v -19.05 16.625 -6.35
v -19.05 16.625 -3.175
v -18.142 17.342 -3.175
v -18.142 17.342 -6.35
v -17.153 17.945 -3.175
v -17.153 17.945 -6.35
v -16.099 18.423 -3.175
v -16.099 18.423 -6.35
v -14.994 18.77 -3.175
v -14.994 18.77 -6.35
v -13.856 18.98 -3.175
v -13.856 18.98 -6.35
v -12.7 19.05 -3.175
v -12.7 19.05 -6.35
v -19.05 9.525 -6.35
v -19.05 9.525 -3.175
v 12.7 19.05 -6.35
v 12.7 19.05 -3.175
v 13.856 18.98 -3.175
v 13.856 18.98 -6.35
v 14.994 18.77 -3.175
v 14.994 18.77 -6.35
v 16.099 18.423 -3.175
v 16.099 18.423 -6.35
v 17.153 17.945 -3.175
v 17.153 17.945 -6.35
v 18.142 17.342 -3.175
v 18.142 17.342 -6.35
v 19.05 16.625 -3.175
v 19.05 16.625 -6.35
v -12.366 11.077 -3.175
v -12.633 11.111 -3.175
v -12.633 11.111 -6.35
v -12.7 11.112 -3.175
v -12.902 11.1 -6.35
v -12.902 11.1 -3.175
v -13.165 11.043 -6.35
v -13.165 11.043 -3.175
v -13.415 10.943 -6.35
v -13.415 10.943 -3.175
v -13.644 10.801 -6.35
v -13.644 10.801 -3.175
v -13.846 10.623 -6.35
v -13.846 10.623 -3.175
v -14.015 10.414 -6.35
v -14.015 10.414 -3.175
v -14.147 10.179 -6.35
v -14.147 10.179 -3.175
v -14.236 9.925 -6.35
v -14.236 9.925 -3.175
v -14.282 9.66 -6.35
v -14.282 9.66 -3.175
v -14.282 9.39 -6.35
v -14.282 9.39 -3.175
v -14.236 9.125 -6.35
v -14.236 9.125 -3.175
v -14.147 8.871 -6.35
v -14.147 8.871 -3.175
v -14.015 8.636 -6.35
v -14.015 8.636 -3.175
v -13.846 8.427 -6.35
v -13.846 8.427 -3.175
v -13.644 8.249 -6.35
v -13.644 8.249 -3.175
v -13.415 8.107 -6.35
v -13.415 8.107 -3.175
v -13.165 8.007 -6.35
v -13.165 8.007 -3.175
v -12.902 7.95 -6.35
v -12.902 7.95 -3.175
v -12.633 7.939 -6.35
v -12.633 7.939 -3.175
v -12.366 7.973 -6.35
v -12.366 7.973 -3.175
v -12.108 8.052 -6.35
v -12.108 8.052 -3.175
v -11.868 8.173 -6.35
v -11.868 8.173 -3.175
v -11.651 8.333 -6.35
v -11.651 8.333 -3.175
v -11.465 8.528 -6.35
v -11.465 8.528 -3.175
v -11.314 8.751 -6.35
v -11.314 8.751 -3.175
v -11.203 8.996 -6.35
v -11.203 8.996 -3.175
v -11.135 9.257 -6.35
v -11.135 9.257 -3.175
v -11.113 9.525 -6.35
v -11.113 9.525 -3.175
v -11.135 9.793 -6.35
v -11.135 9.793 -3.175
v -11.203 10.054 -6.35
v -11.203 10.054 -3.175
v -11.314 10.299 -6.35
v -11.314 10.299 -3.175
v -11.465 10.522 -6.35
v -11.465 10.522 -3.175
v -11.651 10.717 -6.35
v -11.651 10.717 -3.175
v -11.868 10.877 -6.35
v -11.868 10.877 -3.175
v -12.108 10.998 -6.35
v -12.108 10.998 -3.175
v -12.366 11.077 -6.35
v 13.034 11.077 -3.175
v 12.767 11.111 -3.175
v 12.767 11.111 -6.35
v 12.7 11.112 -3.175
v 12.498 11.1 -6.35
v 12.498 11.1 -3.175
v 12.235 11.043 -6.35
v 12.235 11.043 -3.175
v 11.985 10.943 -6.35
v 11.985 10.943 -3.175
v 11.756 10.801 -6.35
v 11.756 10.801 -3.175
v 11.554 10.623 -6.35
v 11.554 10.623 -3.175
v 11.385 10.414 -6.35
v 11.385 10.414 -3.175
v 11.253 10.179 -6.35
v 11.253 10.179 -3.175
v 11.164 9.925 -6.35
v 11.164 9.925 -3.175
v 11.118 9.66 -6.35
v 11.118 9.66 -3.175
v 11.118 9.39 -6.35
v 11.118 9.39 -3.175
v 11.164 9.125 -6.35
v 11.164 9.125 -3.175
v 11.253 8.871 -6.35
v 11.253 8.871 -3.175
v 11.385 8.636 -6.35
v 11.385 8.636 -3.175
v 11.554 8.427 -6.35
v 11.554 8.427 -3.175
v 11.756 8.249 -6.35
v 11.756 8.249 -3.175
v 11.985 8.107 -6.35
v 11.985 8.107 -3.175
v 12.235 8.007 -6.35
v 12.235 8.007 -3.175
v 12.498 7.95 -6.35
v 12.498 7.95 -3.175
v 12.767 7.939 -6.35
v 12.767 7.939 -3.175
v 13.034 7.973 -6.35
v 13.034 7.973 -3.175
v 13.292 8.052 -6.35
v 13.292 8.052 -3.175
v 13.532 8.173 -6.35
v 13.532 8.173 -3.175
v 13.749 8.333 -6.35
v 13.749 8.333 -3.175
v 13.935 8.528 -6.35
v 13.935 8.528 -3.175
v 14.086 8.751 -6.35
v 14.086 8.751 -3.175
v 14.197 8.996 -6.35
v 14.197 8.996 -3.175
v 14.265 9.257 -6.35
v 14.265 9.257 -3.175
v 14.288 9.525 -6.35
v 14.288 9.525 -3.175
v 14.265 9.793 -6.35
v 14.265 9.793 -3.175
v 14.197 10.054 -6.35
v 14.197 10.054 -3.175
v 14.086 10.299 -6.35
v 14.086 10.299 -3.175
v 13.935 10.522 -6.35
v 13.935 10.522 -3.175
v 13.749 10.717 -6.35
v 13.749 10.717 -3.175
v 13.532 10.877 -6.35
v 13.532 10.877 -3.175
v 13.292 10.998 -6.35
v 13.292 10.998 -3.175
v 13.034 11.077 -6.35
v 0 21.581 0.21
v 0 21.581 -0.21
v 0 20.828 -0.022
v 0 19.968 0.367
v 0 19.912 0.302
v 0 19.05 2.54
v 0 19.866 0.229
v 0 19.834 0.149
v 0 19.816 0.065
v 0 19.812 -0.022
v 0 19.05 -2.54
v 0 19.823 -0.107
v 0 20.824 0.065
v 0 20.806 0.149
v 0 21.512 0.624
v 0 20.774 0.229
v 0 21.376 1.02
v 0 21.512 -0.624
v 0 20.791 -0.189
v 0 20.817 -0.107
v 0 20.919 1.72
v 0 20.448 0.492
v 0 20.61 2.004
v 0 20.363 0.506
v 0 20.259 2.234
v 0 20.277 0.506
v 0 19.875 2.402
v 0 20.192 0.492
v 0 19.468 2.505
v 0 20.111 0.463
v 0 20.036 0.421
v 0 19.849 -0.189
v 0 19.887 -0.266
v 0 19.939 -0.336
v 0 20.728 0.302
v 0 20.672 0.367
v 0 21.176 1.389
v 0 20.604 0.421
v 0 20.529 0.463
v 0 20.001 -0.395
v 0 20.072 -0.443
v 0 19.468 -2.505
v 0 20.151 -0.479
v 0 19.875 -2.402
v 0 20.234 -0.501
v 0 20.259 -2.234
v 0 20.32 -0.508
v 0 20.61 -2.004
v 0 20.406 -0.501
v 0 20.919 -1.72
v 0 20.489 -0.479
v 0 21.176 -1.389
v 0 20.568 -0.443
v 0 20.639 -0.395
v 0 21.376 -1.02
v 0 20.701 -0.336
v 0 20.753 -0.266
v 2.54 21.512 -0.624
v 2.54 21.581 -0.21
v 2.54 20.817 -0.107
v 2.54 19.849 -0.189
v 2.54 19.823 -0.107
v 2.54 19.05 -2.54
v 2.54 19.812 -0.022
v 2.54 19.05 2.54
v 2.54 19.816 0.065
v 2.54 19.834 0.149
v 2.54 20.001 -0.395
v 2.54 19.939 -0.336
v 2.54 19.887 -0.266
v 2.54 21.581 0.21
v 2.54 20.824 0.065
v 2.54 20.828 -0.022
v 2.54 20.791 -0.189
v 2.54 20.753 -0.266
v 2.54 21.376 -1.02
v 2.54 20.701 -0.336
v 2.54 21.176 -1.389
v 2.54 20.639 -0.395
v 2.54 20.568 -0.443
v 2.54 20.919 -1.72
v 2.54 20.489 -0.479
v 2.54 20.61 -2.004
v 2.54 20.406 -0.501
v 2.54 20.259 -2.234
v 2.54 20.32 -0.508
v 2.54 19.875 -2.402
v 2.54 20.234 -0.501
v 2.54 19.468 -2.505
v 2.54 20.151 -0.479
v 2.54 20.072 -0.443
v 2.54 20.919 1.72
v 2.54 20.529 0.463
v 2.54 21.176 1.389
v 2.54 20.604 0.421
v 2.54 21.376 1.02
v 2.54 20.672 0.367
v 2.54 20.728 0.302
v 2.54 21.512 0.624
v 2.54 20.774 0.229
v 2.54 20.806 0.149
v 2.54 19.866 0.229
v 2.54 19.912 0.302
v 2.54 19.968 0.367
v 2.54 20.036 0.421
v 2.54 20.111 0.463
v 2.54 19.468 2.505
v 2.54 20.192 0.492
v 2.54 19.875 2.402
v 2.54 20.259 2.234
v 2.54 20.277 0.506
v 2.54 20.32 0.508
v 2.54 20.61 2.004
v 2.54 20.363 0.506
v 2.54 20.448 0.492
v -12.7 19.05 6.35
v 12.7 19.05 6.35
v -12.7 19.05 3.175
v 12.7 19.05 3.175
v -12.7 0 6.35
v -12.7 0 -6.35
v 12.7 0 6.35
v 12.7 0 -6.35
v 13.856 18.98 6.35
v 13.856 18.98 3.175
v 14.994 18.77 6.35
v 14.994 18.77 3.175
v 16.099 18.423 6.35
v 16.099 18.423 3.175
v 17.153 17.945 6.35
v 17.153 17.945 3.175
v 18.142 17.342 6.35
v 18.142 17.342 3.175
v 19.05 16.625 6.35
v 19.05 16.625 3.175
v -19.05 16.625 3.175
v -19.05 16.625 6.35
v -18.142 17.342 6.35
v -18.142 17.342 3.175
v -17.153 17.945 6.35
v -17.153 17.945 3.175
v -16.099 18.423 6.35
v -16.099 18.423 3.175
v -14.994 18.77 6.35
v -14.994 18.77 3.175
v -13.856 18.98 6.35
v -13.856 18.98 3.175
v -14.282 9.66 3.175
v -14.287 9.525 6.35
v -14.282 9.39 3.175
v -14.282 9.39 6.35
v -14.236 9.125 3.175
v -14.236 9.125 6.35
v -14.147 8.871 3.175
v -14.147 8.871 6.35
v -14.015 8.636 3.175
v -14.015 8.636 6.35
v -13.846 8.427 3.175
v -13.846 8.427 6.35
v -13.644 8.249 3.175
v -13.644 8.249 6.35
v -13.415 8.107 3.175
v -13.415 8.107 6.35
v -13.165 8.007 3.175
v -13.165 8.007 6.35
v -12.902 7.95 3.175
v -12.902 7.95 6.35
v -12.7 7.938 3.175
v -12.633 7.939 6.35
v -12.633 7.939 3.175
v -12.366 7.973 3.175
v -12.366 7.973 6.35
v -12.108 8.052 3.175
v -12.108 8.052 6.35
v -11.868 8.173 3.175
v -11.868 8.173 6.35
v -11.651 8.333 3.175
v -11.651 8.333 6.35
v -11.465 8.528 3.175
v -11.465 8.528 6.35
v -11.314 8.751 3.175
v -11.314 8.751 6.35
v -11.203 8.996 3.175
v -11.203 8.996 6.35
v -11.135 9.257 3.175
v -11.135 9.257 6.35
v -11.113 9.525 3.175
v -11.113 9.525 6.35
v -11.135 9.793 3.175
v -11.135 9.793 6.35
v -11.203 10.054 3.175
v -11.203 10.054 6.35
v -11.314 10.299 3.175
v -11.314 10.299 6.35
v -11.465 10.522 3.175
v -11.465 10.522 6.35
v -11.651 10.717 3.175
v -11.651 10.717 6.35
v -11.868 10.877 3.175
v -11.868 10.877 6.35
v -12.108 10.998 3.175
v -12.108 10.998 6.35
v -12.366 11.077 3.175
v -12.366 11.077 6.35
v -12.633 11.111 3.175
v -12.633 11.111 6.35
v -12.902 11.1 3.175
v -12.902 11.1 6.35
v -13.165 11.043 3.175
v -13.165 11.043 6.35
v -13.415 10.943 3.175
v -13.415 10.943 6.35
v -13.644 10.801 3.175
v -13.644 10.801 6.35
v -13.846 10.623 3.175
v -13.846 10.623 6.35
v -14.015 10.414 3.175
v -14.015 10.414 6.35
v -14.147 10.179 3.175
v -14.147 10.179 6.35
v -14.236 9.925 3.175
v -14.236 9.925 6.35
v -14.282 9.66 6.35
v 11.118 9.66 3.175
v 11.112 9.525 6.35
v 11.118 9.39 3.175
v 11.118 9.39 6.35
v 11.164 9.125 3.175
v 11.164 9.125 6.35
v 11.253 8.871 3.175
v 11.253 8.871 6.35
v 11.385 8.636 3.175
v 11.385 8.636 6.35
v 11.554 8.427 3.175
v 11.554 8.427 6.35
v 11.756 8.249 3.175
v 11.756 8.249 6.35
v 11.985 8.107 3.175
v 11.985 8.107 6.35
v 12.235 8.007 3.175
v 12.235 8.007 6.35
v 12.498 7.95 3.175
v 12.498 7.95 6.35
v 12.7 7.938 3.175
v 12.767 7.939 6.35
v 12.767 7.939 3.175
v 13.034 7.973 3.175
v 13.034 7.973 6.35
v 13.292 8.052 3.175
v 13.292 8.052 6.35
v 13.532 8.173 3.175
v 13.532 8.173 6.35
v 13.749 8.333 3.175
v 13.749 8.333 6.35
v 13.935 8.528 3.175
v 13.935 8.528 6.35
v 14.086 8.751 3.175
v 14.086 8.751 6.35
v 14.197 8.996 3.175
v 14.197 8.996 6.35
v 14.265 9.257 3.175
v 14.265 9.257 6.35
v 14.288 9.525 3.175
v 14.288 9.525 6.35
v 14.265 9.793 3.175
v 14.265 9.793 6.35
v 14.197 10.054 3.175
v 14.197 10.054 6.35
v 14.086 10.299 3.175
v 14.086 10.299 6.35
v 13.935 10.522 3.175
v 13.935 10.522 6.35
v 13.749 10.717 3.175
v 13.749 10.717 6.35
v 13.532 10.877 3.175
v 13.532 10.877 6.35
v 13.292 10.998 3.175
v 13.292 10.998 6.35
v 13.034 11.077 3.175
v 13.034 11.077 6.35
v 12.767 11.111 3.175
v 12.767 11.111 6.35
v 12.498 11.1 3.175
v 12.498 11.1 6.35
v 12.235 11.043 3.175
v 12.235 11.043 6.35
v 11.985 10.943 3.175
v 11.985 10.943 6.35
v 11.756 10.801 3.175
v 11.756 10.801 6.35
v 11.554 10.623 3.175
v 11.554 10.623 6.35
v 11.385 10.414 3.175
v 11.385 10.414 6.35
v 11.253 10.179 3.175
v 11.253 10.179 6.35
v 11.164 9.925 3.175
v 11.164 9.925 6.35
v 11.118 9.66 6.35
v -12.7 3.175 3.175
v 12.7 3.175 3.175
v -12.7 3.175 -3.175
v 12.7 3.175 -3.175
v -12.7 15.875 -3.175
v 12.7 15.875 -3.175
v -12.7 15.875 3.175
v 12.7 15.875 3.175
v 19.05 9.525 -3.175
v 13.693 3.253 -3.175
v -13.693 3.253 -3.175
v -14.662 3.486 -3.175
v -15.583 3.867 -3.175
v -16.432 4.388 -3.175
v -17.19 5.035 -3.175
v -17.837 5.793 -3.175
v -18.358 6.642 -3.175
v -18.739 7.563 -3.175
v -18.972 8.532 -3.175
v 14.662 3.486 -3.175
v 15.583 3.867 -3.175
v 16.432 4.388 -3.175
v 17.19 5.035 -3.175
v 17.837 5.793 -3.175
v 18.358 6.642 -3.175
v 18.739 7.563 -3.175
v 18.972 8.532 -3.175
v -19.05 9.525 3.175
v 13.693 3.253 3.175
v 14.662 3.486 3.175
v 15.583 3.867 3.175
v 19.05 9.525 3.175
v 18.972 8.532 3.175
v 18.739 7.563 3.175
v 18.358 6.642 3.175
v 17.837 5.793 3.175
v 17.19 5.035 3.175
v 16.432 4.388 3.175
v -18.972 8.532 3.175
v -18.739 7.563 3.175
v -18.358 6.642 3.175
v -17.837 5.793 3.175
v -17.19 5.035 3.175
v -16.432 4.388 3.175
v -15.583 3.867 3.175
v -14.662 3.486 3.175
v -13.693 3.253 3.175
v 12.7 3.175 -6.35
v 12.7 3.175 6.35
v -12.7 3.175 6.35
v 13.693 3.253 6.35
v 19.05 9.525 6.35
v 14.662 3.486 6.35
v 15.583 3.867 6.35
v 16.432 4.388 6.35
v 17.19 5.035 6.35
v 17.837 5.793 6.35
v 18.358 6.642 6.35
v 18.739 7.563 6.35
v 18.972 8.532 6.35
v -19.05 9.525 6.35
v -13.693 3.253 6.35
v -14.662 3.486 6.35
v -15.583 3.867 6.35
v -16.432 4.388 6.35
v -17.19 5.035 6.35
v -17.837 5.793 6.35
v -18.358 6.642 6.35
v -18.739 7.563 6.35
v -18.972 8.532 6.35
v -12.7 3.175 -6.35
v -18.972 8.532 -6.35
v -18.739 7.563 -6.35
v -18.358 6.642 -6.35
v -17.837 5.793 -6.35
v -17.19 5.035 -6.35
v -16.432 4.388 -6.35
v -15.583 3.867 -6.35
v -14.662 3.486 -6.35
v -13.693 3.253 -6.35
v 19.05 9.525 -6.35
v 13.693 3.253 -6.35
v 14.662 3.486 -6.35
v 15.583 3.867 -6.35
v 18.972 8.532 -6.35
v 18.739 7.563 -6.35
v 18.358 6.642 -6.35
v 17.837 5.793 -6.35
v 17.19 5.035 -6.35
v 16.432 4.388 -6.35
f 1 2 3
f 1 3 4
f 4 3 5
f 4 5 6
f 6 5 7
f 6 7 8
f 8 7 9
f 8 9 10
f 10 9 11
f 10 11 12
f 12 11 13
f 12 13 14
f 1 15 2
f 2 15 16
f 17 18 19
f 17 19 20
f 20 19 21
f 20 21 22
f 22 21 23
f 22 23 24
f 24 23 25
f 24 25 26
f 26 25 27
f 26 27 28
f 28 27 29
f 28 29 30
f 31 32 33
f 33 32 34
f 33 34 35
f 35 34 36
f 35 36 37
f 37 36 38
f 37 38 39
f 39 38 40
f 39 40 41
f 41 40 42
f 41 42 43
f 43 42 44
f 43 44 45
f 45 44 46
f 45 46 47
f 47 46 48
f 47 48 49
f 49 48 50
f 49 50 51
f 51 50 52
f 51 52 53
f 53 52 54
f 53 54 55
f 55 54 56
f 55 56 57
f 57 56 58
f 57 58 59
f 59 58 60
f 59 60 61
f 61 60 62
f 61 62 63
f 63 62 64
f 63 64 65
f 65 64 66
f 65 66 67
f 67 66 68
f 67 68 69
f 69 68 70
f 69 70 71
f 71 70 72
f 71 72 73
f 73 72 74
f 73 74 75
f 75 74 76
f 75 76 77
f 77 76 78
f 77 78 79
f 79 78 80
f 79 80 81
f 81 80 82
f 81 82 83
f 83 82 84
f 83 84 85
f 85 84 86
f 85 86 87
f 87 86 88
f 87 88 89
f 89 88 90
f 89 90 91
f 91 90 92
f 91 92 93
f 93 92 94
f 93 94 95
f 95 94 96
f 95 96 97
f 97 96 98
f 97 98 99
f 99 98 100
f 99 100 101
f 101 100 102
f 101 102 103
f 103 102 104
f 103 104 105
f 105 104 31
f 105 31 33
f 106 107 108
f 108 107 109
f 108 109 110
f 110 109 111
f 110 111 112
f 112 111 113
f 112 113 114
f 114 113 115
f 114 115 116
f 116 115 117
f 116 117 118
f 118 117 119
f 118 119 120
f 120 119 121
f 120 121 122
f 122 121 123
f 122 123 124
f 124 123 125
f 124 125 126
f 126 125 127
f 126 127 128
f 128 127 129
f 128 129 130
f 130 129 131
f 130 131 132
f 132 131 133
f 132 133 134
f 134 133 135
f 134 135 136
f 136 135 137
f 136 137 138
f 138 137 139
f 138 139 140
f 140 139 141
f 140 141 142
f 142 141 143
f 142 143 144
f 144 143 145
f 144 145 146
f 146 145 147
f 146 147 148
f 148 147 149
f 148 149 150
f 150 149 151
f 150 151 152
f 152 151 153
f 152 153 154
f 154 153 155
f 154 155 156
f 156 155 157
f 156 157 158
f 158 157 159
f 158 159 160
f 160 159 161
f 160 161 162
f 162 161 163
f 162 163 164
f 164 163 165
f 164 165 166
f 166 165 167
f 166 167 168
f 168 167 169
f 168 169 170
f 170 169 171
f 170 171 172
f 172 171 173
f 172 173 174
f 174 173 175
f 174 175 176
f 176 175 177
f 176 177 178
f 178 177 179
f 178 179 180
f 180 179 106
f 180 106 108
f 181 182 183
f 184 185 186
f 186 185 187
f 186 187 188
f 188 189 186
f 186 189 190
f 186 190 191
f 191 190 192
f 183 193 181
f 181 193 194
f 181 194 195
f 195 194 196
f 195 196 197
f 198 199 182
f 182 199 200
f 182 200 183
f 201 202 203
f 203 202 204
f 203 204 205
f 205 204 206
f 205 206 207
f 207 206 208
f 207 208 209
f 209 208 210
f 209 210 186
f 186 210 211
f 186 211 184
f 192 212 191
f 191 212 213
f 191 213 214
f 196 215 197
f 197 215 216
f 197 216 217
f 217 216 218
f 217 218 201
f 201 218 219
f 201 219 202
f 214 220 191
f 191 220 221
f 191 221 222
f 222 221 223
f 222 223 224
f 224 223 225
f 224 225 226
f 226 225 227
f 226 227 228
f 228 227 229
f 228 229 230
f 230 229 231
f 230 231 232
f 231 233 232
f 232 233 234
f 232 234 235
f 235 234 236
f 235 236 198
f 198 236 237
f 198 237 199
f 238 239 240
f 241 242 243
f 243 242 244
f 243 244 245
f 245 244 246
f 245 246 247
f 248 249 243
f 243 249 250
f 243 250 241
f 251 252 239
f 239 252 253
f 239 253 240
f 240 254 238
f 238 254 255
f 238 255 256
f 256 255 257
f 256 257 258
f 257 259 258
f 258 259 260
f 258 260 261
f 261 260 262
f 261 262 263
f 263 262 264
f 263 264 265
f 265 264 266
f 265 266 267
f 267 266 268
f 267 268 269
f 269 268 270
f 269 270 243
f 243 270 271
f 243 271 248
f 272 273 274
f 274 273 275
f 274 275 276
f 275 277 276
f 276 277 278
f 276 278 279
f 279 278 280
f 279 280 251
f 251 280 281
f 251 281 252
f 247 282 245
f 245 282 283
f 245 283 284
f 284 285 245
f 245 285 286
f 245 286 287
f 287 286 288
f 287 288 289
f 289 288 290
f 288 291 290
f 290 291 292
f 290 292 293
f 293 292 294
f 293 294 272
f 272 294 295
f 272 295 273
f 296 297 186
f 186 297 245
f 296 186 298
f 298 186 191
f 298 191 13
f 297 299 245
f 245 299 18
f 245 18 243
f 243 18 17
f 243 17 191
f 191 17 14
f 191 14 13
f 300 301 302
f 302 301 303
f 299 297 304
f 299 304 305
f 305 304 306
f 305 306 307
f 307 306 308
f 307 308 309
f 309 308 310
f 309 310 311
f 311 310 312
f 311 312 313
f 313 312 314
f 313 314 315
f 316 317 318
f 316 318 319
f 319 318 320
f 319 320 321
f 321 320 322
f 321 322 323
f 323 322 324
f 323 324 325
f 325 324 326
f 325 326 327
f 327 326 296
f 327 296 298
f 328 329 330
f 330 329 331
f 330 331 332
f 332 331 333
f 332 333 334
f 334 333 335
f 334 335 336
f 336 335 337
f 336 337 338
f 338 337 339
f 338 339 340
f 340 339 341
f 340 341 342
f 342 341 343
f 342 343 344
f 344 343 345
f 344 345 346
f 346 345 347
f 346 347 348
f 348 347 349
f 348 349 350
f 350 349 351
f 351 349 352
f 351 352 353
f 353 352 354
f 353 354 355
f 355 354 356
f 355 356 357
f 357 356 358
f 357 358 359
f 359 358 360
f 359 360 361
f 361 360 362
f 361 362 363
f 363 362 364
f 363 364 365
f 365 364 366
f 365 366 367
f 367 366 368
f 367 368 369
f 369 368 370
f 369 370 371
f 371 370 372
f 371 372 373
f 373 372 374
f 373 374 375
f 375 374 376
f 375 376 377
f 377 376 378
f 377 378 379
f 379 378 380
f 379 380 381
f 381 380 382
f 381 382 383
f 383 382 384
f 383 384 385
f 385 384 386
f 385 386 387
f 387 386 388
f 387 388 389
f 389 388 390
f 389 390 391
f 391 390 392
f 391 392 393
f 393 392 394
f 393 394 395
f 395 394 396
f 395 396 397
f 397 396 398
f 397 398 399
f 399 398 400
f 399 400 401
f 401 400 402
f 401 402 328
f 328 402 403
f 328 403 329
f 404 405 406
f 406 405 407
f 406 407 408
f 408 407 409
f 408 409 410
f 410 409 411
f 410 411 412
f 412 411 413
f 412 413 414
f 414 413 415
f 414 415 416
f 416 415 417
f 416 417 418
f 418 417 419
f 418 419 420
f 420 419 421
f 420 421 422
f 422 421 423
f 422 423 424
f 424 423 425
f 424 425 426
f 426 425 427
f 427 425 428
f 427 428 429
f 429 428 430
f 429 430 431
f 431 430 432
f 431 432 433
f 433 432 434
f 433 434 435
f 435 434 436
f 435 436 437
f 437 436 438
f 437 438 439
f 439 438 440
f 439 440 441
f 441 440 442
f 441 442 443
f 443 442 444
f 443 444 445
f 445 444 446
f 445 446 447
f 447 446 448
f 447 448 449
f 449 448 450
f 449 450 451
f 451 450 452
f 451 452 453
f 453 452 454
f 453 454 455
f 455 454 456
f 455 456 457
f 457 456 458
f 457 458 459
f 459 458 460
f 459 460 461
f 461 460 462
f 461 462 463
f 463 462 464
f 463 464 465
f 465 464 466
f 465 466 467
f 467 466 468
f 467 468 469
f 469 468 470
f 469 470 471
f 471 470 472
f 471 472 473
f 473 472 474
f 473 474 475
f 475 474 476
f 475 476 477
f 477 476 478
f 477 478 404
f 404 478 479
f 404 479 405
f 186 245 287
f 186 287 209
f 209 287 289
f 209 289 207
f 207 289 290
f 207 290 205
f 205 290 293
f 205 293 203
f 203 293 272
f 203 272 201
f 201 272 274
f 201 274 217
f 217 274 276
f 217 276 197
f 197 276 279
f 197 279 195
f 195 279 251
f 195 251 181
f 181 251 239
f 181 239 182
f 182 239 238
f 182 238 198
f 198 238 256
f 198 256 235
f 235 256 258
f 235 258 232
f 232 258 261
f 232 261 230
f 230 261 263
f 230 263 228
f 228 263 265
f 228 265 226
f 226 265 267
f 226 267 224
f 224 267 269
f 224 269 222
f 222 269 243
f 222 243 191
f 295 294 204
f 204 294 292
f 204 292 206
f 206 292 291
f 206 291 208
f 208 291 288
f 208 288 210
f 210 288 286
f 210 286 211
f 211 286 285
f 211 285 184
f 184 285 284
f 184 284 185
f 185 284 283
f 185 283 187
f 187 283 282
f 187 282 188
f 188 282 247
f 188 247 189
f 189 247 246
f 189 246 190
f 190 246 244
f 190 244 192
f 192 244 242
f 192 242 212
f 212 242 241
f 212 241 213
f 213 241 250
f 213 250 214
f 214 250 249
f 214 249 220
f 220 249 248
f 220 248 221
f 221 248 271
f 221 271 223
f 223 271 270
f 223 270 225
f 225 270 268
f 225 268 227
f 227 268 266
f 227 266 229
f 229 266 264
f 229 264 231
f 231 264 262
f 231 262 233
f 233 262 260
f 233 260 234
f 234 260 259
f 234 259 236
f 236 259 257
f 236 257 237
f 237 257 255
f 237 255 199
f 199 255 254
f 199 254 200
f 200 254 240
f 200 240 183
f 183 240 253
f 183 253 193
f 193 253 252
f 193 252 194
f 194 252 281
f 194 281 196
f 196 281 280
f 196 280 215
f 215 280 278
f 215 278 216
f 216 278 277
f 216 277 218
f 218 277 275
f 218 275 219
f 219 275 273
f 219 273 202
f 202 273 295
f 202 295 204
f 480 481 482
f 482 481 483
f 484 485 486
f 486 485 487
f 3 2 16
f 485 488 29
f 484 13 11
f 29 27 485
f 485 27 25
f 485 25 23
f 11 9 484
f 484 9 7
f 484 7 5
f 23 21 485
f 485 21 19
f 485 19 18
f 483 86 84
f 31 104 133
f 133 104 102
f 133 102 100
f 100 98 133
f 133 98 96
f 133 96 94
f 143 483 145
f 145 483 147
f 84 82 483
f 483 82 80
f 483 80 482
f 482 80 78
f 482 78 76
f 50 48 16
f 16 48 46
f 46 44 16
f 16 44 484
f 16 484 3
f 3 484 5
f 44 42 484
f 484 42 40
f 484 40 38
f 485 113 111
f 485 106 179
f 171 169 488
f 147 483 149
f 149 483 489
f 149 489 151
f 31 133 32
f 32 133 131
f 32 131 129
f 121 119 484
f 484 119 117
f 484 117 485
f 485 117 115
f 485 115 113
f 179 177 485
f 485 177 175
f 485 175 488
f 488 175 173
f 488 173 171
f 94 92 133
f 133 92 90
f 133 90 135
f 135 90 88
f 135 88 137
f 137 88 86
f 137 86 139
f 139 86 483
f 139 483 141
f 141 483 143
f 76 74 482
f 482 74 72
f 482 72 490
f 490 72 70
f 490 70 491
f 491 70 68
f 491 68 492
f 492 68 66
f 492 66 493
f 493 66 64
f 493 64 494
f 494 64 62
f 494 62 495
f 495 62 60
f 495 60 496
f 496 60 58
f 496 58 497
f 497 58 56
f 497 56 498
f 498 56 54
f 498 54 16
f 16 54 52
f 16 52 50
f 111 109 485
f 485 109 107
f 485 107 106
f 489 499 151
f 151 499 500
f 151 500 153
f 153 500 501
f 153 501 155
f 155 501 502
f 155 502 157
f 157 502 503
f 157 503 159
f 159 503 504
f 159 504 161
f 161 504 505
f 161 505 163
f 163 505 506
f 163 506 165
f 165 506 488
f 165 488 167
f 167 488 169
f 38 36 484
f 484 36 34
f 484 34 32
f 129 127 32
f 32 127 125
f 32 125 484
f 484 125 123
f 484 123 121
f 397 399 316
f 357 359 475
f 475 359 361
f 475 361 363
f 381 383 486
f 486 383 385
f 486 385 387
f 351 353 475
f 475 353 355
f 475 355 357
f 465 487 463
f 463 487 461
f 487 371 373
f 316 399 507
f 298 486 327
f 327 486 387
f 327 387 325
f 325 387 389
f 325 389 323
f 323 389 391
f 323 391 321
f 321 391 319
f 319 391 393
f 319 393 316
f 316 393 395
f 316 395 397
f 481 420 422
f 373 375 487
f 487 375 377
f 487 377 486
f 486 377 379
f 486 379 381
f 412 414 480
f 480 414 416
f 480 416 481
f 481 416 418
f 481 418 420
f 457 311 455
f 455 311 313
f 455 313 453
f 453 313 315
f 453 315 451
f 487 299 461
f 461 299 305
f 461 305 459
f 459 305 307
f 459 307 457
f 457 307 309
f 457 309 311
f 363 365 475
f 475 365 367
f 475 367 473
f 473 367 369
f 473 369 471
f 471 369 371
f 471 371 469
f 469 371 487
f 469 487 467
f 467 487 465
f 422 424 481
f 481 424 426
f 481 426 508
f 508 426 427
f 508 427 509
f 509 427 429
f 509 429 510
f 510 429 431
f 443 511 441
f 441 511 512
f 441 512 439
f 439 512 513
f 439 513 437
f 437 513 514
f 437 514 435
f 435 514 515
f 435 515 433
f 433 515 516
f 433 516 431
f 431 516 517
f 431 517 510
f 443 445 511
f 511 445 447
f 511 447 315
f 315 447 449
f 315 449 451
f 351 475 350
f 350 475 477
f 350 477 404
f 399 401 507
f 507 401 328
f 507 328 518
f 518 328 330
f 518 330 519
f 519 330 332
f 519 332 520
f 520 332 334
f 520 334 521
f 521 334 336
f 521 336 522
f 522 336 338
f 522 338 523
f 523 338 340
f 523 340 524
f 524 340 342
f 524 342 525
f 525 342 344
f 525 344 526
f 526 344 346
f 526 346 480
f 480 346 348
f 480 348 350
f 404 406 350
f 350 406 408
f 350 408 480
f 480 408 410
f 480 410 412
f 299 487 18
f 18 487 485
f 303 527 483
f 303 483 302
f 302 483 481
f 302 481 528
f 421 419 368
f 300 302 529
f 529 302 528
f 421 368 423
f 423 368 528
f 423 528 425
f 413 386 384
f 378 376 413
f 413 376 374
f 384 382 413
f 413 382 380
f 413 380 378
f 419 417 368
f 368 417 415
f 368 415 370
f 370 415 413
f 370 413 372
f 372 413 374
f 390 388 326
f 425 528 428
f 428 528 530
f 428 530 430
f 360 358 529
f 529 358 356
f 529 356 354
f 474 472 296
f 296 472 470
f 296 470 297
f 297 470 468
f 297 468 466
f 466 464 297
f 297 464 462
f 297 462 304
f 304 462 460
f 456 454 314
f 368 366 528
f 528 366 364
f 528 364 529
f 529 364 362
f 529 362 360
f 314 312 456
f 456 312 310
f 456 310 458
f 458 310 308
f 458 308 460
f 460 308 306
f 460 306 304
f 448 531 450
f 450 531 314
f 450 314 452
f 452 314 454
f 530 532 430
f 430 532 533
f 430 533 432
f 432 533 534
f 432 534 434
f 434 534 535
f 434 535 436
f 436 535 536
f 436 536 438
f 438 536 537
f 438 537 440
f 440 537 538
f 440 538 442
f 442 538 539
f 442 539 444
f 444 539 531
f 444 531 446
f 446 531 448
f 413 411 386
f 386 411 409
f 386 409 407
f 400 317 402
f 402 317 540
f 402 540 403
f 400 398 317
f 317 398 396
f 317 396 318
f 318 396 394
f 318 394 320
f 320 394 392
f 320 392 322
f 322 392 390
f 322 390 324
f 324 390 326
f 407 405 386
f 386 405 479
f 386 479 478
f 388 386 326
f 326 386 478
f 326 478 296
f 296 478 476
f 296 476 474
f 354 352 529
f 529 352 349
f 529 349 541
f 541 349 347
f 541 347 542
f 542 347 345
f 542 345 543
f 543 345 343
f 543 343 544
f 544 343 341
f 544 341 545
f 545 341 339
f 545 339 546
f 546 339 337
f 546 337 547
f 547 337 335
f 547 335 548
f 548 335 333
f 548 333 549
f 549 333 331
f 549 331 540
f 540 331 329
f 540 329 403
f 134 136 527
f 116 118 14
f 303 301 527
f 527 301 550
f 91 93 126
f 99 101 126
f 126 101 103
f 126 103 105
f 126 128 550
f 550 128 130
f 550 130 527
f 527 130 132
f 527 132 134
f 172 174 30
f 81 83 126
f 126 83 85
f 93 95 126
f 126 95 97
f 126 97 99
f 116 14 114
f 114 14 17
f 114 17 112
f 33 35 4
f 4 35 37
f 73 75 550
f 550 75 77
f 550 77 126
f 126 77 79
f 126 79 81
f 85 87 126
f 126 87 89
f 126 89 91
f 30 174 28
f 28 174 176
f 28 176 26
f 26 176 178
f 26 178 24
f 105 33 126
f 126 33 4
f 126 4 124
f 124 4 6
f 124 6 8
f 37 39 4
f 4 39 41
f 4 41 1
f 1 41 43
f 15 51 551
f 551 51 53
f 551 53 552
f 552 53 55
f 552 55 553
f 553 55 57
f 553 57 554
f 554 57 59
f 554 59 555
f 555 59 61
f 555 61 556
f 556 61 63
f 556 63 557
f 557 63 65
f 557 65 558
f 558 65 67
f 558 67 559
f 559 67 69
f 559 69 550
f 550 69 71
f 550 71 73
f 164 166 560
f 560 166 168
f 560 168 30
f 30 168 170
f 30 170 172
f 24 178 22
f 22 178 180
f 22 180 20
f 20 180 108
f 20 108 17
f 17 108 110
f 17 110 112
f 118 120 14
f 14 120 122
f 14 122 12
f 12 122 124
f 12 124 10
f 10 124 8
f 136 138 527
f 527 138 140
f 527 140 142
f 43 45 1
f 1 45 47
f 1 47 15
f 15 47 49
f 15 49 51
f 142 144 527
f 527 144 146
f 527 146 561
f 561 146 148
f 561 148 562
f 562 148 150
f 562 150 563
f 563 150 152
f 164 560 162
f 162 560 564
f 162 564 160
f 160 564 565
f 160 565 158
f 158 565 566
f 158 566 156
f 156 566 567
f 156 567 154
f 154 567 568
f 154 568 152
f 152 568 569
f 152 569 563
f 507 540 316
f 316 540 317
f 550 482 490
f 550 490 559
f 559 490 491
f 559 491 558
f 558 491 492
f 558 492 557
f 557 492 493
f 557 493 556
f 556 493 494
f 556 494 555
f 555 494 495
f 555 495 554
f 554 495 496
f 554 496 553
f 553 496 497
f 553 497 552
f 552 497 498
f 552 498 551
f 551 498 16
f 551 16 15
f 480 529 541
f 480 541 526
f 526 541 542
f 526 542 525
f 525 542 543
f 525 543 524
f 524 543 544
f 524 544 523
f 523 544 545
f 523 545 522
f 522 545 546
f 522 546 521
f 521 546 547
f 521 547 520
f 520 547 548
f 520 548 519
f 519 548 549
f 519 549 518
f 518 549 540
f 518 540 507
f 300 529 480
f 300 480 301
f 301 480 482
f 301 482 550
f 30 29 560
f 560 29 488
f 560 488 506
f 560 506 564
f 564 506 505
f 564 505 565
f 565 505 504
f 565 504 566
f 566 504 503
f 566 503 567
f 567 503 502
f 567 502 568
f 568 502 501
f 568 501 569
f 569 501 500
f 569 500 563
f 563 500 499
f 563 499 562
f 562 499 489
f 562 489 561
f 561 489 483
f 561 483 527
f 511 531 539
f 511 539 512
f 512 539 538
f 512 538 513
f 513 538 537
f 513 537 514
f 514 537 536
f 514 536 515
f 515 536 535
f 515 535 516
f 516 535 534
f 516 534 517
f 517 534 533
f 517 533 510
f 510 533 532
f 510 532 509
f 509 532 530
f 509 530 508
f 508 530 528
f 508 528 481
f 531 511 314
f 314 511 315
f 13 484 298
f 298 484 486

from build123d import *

# Parameters (mm, degrees)
SKETCH1_W           = 44.45
SKETCH1_H           = 19.05
BOSS_EXTRUDE1_DEPTH = 19.05
SKETCH2_R           = 1.5875
CUT_EXTRUDE1_DEPTH  = 19.05
SKETCH9_W           = 2.54
SKETCH9_H           = 5.08
BOSS_EXTRUDE2_DEPTH = 2.54
SKETCH3_R           = 0.508
SKETCH3_W           = 6.35
SKETCH3_H           = 12.7
CUT_EXTRUDE2_DEPTH  = 38.1
SKETCH4_W           = 16.467967332
SKETCH4_H           = 6.35
CUT_EXTRUDE3_DEPTH  = 43.18
CUT_EXTRUDE4_DEPTH  = 19.05
SKETCH7_W           = 15.04890267
SKETCH7_H           = 6.35
CUT_EXTRUDE5_DEPTH  = 3.81


with BuildPart() as part:
    # Sketch1 → Boss-Extrude1 (new body)
    with BuildSketch(Plane(origin=(0, 0, 0), x_dir=(1, 0, 0), z_dir=(0, 1, 0))):
        Rectangle(SKETCH1_W, SKETCH1_H)
    extrude(amount=BOSS_EXTRUDE1_DEPTH)

    # Sketch2 → Cut-Extrude1 (cut)
    with BuildSketch(Plane.XY.offset(9.525)):
        with Locations((-12.7, 9.525)):
            Circle(SKETCH2_R)
        with Locations((12.7, 9.525)):
            Circle(SKETCH2_R)
        with BuildLine():
            ThreePointArc((-12.7, 19.05), (-22.225, 9.525), (-12.7, 0))
            ThreePointArc((-12.7, 0), (-32.914765451, 9.525), (-12.7, 19.05))
        make_face()
        with BuildLine():
            ThreePointArc((12.7, 19.05), (32.914765451, 9.525), (12.7, 0))
            ThreePointArc((12.7, 0), (22.225, 9.525), (12.7, 19.05))
        make_face()
    extrude(amount=-CUT_EXTRUDE1_DEPTH, mode=Mode.SUBTRACT)

    # Sketch9 → Boss-Extrude2 (add)
    with BuildSketch(Plane(origin=(0, 19.05, 0), x_dir=(1, 0, 0), z_dir=(0, 1, 0))):
        with Locations((1.27, 0)):
            Rectangle(SKETCH9_W, SKETCH9_H)
    extrude(amount=BOSS_EXTRUDE2_DEPTH)

    # Sketch3 → Cut-Extrude2 (cut, symmetric)
    with BuildSketch(Plane(origin=(0, 0, 0), x_dir=(0, 0, -1), z_dir=(1, 0, 0))):
        with Locations((0, 20.32)):
            Circle(SKETCH3_R)
        with Locations((0, 9.525)):
            Rectangle(SKETCH3_W, SKETCH3_H)
        with BuildLine():
            ThreePointArc((-2.54, 19.05), (0, 21.59), (2.54, 19.05))
            ThreePointArc((2.54, 19.05), (0, 24.1080653), (-2.54, 19.05))
        make_face()
    extrude(amount=CUT_EXTRUDE2_DEPTH, both=True, mode=Mode.SUBTRACT)

    # Sketch4 → Cut-Extrude3 (cut)
    with BuildSketch(Plane(origin=(0, 19.05, 0), x_dir=(1, 0, 0), z_dir=(0, 1, 0))):
        Polygon((-29.361154188, -9.525), (-12.7, -9.525), (1.5875, -9.525), (28.406626571, -9.525), (28.406626571, -6.35), (1.5875, -6.35), (-12.7, -6.35), (-29.361154188, -6.35), align=None)
        Polygon((-12.7, 6.35), (-31.510324581, 6.35), (-31.510324581, 9.525), (-11.1125, 9.525), (1.5875, 9.525), (30.675017081, 9.525), (30.675017081, 6.35), (1.5875, 6.35), align=None)
        with Locations((20.933983666, 0)):
            Rectangle(SKETCH4_W, SKETCH4_H)
    extrude(amount=-CUT_EXTRUDE3_DEPTH, mode=Mode.SUBTRACT)

    # Sketch6 → Cut-Extrude4 (cut)
    with BuildSketch(Plane.XY.offset(9.525)):
        with BuildLine():
            Line((12.7, 0), (31.980086248, 0))
            Line((31.980086248, 0), (31.980086248, 3.175))
            Line((31.980086248, 3.175), (26.13215645, 13.808491056))
            Line((26.13215645, 13.808491056), (19.05, 19.755698555))
            Line((19.05, 19.755698555), (19.05, 9.525))
            ThreePointArc((19.05, 9.525), (17.190128061, 5.034871939), (12.7, 3.175))
            Line((12.7, 3.175), (12.7, 0))
        make_face()
        with BuildLine():
            Line((-12.7, 0), (-12.7, 3.175))
            ThreePointArc((-12.7, 3.175), (-17.190128061, 5.034871939), (-19.05, 9.525))
            Line((-19.05, 9.525), (-19.05, 20.942771878))
            Line((-19.05, 20.942771878), (-28.921644245, 11.767684684))
            Line((-28.921644245, 11.767684684), (-28.921644245, 0))
            Line((-28.921644245, 0), (-12.7, 0))
        make_face()
    extrude(amount=-CUT_EXTRUDE4_DEPTH, mode=Mode.SUBTRACT)

    # Sketch7 → Cut-Extrude5 (cut)
    with BuildSketch(Plane(origin=(0, 19.05, 0), x_dir=(1, 0, 0), z_dir=(0, 1, 0))):
        with Locations((-20.224451335, 0)):
            Rectangle(SKETCH7_W, SKETCH7_H)
    extrude(amount=-CUT_EXTRUDE5_DEPTH, mode=Mode.SUBTRACT)


solid = part.part
